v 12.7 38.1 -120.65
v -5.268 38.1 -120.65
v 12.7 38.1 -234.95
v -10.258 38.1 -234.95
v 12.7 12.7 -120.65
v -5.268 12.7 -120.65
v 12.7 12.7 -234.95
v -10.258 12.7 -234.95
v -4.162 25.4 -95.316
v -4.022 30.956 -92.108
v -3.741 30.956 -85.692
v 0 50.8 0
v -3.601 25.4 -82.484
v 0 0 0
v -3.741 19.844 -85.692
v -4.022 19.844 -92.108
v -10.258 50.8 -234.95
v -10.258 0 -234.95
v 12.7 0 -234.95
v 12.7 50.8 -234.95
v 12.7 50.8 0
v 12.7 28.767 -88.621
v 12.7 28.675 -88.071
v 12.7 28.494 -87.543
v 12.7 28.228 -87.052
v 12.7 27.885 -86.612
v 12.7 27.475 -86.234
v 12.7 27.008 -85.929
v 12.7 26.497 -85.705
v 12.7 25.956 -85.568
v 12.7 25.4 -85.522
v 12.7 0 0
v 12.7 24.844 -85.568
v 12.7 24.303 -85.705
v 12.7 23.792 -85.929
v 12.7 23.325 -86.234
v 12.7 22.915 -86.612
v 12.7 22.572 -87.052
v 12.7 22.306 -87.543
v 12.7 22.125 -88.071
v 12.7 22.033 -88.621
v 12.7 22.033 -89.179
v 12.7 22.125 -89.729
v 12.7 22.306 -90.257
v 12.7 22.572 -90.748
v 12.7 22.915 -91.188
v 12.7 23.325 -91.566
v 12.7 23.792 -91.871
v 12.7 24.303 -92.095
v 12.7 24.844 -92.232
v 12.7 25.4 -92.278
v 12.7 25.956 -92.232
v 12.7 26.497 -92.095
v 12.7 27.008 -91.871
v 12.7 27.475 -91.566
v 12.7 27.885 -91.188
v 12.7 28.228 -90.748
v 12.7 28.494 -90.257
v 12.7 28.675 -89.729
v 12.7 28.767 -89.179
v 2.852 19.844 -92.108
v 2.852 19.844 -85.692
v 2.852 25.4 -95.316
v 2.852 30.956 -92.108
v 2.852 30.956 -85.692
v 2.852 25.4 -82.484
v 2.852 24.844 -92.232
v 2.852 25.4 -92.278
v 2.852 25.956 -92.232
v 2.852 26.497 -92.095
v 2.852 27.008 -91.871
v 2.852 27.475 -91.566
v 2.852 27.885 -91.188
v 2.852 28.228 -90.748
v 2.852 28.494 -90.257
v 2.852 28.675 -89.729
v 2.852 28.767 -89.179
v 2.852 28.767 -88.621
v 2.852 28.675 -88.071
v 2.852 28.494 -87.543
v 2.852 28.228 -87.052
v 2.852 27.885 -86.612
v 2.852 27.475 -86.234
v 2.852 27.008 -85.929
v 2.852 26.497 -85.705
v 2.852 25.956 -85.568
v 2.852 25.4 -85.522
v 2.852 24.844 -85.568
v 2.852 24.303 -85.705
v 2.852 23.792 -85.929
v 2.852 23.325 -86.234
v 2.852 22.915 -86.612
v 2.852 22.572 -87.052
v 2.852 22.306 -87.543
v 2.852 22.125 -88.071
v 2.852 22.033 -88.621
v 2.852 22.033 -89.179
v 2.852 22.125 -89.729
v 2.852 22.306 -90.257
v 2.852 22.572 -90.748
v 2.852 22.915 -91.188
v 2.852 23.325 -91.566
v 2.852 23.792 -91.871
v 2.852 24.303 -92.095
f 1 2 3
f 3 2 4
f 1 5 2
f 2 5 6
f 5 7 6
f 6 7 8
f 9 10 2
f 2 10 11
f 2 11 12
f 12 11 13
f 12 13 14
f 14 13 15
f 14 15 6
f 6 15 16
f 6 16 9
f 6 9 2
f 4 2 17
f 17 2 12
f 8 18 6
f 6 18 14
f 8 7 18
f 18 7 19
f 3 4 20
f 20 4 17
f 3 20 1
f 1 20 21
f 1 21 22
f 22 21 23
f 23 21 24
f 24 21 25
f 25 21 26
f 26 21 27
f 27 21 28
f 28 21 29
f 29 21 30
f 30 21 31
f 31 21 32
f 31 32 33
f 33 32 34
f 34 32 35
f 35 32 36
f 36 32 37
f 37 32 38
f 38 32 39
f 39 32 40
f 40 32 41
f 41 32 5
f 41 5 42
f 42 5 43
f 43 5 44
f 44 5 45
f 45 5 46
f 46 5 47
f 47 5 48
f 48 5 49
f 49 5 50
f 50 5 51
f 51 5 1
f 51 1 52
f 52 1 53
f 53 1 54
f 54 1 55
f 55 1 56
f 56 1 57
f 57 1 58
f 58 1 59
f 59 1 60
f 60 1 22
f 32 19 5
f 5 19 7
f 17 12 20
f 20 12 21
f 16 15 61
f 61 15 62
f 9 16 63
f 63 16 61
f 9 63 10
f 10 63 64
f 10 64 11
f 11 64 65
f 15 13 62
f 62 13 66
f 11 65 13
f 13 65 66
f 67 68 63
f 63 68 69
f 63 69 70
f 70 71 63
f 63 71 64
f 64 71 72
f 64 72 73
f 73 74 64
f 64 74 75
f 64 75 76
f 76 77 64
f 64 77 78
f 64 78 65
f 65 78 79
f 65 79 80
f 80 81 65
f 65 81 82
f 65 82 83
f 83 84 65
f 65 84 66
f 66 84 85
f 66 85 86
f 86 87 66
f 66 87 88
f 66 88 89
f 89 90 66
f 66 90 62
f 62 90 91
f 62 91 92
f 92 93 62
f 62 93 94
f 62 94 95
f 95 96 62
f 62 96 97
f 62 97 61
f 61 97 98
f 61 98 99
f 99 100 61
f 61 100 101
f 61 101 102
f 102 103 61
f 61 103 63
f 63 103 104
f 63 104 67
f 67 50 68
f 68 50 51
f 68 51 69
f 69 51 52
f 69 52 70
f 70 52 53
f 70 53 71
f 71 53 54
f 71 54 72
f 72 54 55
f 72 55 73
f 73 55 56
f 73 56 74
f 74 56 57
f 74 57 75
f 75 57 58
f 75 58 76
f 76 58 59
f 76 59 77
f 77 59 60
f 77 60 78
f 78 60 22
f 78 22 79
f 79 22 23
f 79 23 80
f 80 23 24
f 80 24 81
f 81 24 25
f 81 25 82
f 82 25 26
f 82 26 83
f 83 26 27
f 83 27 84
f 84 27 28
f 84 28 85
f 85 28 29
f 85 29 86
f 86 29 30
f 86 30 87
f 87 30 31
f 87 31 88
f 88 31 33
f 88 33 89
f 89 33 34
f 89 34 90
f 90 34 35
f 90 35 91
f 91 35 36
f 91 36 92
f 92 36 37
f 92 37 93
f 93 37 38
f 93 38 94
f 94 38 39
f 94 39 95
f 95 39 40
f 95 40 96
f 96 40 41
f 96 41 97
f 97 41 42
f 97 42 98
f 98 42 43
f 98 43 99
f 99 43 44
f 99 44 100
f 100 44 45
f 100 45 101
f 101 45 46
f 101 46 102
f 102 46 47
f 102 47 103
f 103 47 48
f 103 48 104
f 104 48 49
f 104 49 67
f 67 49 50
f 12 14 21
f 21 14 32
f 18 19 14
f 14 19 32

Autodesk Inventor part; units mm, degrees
ref_plane "YZ Plane" through (0, 0, 0) normal (1, 0, 0) x (0, 1, 0)
ref_plane "XZ Plane" through (0, 0, 0) normal (0, 1, 0) x (-1, 0, 0)
sketch "Sketch1" plane through (0, 0, 0) normal (0, 1, 0) x (-1, 0, 0)
  line L0 (0, 0) -> (0, -469.9)
  line L1 (0, -469.9) -> (0, -122.0086)
  line L2 (0, -469.9) -> (20.5163, -469.9)
  line L3 (20.5163, -469.9) -> (0, 0)
  dimension "d0" = 469.9
  dimension "d1" = 2.5
extrude "Extrusion1" add sketch "Sketch1" along normal blind 50.8
ref_plane "Work Plane1" through (-20.5163, 50.8, -469.9) normal (1, 0, 0) x (0, 0, -1)
sketch "Sketch2" plane through (0, 0, 0) normal (1, 0, 0) x (0, 0, -1)
  line L0 (0, 0) -> (469.9, 0) projected
  line L1 (0, 50.8) -> (469.9, 50.8) projected
  line L2 (0, 0) -> (469.9, 0)
  line L3 (469.9, 0) -> (469.9, 50.8)
  line L4 (469.9, 50.8) -> (0, 50.8)
  line L5 (0, 50.8) -> (0, 0)
extrude "Extrusion2" add sketch "Sketch2" along normal blind 12.7
sketch "Sketch4" plane through (-20.5163, 50.8, -469.9) normal (1, 0, 0) x (0, 0, -1)
  line L0 (0, -50.8) -> (0, 0) construction
  line L1 (0, -25.4) -> (-279.4, -25.4) construction
  line L2 (0, -50.8) -> (-469.9, -50.8) construction
  line L3 (-469.9, -50.8) -> (-469.9, 0) construction
  point P0 (-381, -25.4)
  point P1 (-123.825, -25.4)
  point P2 (-469.9, 0)
  dimension "d16" = 25.4
  dimension "d17" = 88.9
  dimension "d18" = 346.075
hole "Hole2" at (-20.5163, 25.4, -88.9) at (-20.5163, 25.4, -346.075) direction (1, 0, 0) diameter 6.7564 end through all clearance for "Flat Head Machine Screw (82)" size "1/4" standard "Ansi Unified Screw Threads"
sketch "Sketch6" plane through (-20.5163, 50.8, -469.9) normal (1, 0, 0) x (0, 0, -1)
  circle A0 centre (-123.825, -25.4) radius 3.3782 projected
  line L0 (-130.2408, -25.4) -> (-127.0329, -19.8438)
  line L1 (-127.0329, -19.8438) -> (-120.6171, -19.8438)
  line L2 (-120.6171, -19.8438) -> (-117.4092, -25.4)
  line L3 (-117.4092, -25.4) -> (-120.6171, -30.9563)
  line L4 (-120.6171, -30.9563) -> (-127.0329, -30.9562)
  line L5 (-127.0329, -30.9562) -> (-130.2408, -25.4)
  circle A1 centre (-381, -25.4) radius 3.3782 projected
  line L6 (-387.4158, -25.4) -> (-384.2079, -19.8438)
  line L7 (-384.2079, -19.8438) -> (-377.7921, -19.8438)
  line L8 (-377.7921, -19.8438) -> (-374.5842, -25.4)
  line L9 (-374.5842, -25.4) -> (-377.7921, -30.9563)
  line L10 (-377.7921, -30.9563) -> (-384.2079, -30.9563)
  line L11 (-384.2079, -30.9563) -> (-387.4158, -25.4)
  line L12 (0, 0) -> (-469.9, 0) projected
  point P0 (-469.9, -50.8)
  dimension "d26" = 11.1125
extrude "Extrusion3" cut sketch "Sketch6" along normal blind 23.368
ref_plane "Work Plane2" through (-20.5163, 0, -234.95) normal (0, 0, -1) x (-1, 0, 0)
split "Split2" plane through (-20.5163, 0, -234.95) removes the side toward (0, 0, -1)
sketch "Sketch7" plane through (-20.5163, 50.8, -469.9) normal (1, 0, 0) x (0, 0, -1)
  line L0 (-120.65, -38.1) -> (-349.25, -38.1)
  line L1 (-349.25, -38.1) -> (-349.25, -12.7)
  line L2 (-349.25, -12.7) -> (-120.65, -12.7)
  line L3 (-120.65, -12.7) -> (-120.65, -38.1)
  line L4 (-234.95, -50.8) -> (-234.95, 0) projected
  line L5 (-120.65, -38.1) -> (-349.25, -12.7) construction
  line L6 (-349.25, -38.1) -> (-120.65, -12.7) construction
  point P0 (-469.9, -50.8)
  point P1 (-234.95, -25.4)
  dimension "d30" = 25.4
  dimension "d31" = 228.6
extrude "Extrusion4" cut sketch "Sketch7" along normal through all
equation "\"d0\" = lengthOfFixture"
equation "\"d1\" = cutAngle"
equation "\"d2\" = heightOfJig"
equation "\"d4\" = addedDepthToSupportBolts"
equation "\"d16\" = heightOfBoltHolt"
equation "\"d17\" = bottomToFirstHole"
equation "\"d18\" = bottomToSecondHole"
equation "\"d26\" = hexBoltDiameter"
equation "\"d27\" = depthOfHoleForHexBolt + clearanceForHexbolt"
equation "\"lengthOfFixture\" = 469.9"
equation "\"cutAngle\" = 2.5deg"
equation "\"bottomToFirstHole\" = 88.9"
equation "\"distanceBetweenBolts\" = 257.175"
equation "\"bottomToSecondHole\" = bottomToFirstHole + distanceBetweenBolts"
equation "\"heightOfBoltHolt\" = 25.4"
equation "\"boltSize\" = 6.35"
equation "\"heightOfJig\" = 50.8"
equation "\"addedDepthToSupportBolts\" = 12.7"
equation "\"depthOfHoleForHexBolt\" = 22.86"
equation "\"hexBoltDiameter\" = 11.1125"
equation "\"clearanceForHexbolt\" = 0.508"
equation "\"d29\" = -0.5 * lengthOfFixture"
properties part number "jigForRipCutsA" material "PC/ABS Plastic"
